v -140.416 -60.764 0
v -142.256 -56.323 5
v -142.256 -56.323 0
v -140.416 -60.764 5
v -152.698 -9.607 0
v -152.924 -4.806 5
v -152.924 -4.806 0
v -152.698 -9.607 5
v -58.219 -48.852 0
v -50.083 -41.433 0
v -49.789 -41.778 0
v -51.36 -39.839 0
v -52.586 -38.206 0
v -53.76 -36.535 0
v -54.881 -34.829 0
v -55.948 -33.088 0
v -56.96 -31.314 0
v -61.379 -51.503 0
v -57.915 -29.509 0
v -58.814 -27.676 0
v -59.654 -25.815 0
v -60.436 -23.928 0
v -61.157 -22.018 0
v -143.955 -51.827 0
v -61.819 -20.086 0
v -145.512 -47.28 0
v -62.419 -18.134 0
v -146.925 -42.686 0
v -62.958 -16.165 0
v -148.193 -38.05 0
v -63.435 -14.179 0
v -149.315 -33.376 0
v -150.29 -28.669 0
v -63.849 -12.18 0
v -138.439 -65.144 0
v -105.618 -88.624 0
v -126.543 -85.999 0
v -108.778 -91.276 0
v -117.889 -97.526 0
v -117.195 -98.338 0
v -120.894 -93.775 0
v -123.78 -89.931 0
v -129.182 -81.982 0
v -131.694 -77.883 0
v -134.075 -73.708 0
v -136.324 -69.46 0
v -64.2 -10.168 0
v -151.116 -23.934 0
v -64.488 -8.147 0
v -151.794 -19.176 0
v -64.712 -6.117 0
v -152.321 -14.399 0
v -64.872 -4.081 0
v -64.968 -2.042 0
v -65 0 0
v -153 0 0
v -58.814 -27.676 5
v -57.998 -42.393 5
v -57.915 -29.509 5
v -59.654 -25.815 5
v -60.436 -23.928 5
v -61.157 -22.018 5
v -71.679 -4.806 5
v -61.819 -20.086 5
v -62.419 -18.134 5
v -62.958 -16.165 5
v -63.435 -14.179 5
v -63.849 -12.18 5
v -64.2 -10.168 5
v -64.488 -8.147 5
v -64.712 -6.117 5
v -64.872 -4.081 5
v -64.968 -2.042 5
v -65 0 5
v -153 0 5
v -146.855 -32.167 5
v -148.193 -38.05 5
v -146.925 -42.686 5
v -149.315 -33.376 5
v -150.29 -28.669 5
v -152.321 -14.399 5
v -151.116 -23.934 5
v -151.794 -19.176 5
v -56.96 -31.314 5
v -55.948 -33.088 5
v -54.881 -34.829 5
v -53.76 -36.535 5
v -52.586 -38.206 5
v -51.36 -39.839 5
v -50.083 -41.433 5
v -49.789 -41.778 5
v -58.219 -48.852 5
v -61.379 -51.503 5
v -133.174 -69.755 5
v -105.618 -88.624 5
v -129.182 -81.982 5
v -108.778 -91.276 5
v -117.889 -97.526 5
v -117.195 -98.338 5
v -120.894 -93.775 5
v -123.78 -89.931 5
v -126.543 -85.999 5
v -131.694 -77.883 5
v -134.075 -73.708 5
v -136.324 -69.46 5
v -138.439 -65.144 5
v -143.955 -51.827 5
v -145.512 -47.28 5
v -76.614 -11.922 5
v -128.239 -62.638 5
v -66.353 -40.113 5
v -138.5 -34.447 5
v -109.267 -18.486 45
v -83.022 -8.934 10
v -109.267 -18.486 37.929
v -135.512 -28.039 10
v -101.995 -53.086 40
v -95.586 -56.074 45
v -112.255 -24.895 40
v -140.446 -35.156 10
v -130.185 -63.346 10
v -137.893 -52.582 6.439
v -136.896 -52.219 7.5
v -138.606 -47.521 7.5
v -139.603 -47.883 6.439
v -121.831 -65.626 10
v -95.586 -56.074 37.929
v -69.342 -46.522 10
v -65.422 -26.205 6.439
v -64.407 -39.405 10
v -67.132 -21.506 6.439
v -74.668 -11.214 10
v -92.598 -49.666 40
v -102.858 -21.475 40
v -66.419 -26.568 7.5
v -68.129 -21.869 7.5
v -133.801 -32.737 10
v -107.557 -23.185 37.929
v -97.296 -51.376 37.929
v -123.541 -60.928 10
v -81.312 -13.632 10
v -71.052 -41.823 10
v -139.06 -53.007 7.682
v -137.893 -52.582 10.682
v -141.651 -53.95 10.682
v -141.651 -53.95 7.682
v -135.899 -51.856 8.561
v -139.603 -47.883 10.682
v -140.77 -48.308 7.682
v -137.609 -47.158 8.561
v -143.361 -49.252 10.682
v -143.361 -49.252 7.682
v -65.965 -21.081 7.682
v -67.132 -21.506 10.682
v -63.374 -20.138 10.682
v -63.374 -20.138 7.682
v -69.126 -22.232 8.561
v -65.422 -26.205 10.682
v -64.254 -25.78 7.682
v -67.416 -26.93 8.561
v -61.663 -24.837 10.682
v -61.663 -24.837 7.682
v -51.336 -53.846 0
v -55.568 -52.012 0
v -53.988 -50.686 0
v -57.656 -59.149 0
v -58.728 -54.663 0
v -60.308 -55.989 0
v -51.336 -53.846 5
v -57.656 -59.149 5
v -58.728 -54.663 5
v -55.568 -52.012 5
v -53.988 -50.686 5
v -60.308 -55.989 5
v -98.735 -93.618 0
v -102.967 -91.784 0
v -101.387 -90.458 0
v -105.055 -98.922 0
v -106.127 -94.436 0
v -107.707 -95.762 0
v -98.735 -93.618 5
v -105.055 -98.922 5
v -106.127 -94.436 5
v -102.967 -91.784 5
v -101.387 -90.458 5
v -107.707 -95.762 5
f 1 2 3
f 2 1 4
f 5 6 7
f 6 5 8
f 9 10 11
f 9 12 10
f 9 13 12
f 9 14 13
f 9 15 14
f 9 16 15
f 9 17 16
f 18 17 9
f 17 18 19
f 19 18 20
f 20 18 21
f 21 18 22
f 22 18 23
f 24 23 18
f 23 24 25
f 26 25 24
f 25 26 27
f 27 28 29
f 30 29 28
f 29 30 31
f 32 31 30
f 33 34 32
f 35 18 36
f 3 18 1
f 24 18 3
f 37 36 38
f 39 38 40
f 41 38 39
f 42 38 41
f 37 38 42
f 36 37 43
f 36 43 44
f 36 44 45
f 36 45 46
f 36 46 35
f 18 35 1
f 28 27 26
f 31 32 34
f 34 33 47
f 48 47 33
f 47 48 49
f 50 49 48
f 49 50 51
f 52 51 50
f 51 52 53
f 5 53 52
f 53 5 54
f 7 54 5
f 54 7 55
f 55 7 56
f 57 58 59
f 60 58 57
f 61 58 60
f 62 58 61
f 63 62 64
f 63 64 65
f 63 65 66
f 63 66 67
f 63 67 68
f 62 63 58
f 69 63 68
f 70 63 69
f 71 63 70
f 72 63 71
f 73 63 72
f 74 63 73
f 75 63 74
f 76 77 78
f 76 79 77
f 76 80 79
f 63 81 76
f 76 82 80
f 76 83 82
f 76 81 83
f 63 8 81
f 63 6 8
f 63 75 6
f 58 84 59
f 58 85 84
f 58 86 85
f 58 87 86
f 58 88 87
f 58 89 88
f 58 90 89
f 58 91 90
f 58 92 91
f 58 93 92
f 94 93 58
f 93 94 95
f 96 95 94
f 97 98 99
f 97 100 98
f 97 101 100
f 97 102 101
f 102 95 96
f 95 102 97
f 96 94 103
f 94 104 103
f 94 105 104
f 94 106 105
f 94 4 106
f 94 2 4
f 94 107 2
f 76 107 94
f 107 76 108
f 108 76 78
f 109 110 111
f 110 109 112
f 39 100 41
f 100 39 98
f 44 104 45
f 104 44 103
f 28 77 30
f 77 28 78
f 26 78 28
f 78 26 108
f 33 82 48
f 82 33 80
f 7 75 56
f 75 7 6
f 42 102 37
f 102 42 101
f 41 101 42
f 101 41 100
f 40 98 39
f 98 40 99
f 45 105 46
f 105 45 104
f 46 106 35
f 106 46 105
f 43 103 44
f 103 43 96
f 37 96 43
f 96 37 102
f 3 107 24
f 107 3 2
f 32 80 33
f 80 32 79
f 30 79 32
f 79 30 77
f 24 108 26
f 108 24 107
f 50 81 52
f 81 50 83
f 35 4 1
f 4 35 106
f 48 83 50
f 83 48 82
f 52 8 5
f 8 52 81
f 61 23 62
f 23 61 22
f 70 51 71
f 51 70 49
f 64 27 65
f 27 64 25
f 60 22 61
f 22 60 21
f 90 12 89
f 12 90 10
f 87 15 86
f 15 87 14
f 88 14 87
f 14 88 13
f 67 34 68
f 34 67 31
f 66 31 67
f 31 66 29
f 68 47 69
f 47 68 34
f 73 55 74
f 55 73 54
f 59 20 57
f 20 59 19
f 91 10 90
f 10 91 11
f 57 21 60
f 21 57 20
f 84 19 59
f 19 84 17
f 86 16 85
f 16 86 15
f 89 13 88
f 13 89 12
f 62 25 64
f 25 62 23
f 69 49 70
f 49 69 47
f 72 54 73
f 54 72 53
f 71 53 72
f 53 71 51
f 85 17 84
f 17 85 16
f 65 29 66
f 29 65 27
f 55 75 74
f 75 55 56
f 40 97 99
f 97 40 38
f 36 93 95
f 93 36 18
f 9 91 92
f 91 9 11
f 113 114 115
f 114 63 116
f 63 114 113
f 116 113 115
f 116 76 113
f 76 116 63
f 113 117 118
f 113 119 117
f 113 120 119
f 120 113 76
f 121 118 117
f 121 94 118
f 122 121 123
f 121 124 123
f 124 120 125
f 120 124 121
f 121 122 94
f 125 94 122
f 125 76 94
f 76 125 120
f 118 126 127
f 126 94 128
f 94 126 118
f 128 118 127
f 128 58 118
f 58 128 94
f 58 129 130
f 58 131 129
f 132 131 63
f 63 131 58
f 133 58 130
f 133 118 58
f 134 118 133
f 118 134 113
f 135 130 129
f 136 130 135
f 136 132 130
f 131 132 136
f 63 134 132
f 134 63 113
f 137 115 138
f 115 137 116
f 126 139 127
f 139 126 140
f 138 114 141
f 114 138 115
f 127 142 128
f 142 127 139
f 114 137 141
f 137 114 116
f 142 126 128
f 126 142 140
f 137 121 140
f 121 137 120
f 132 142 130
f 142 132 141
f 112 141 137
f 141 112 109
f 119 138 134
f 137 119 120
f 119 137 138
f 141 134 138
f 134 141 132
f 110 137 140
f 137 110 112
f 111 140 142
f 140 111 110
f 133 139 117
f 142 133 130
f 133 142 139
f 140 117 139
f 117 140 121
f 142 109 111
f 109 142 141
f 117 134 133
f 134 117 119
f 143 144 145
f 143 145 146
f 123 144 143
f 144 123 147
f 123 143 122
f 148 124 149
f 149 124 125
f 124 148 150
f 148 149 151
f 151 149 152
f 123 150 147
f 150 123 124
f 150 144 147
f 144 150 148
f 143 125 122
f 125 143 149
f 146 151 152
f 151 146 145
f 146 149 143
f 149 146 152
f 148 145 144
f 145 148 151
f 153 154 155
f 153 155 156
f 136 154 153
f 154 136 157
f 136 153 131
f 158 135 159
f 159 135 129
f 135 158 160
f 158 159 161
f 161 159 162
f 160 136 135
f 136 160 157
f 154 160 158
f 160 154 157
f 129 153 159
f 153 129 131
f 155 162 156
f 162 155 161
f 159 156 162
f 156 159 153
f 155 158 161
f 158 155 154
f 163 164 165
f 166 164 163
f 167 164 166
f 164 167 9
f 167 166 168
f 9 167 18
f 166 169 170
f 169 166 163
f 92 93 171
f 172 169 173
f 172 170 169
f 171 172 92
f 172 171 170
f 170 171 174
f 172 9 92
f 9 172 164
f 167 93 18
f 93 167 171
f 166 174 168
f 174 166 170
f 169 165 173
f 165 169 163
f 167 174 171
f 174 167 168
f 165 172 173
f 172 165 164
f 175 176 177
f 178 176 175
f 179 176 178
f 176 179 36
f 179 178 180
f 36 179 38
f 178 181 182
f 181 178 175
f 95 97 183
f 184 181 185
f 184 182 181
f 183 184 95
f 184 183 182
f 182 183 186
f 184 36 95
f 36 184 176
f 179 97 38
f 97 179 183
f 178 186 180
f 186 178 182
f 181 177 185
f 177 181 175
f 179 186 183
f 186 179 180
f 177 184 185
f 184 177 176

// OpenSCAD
// file: camera_mount.scad
triangle_height = 40;
triangle_width = 40;
side_length = sqrt(2) * triangle_height;
beam_width = 5;
smaller_side_length = side_length - beam_width* (1 + sqrt(2))*sqrt(2);

module triangle(side, z){
    difference() {
        translate([0, 0, -side/sqrt(2)])
        rotate([45, 0, 0])
        cube([z, side, side]);
        
        // Cut off bottom
        translate([-500, -500, -1000])
        cube([1000, 1000, 1000]);
    };
};

module truss(){
    difference(){
        triangle(side_length, triangle_width);
        // hollow out triangle cross section
        translate([-0.5, 0, beam_width])

        triangle(smaller_side_length, triangle_width + 1);
        
        translate([beam_width, -500, , beam_width])
        cube([triangle_width - beam_width*2, 1000, triangle_height- beam_width*(2)]);
        
        //hollow base
        translate([beam_width, 0, -(beam_width*(sqrt(2)))])
        triangle(side_length, triangle_width - 2*beam_width);
    }
};

module notch(){
    translate([-500, -beam_width/4, 0])
    cube([1000, beam_width/2, beam_width/2]);
};

module hook(){
    translate([-beam_width/2,-1.5,0]) union()
    {
    cube([beam_width,3,3]);
    translate([0,0,3]) rotate([-45,0,0]) cube([beam_width,3,4]);
    }
}

//hook();
truss();
translate([0,beam_width / 2,beam_width / 2]) translate([smaller_side_length / 2, -triangle_width, 0]) rotate([45,0,0]) rotate(180) hook();
translate([0,-beam_width / 2,beam_width / 2]) translate([smaller_side_length / 2, triangle_width, 0]) rotate([-45,0,]) hook();
//difference(){
//    truss();
//    notch();
//};
// main file
ri = 65; // 65mm radius of turntable
ro = ri + 40*2.2; // outer radius
h = 5;

// r1 = outer radius, r2 = inner radius
module platform_half(r1, r2)
{
    difference()
    {
    difference()
    {
        cylinder(r=r1, h=h, $fn=200);
        translate([0,0,-0.05*h]) cylinder(r=r2, h=1.1*h, $fn=200);
    }
    translate([-ro,0,-2*h]) cube(2*ro);
}
}

// r1 = outer radius, r2 = inner radius
module platform(r1, r2) {
    difference()
    {
        platform_half(r1, r2);
        union()
        {
            rotate(40) platform_half(1.1*r1, 0.9*r2);
        }
    }
}

module mount()
{
    include <camera_mount.scad>
}


module tab(r)
{
    for (i=[0:1])
    {
        translate([0,i*15*r/16,0])
    union()
    {
    cube([r/8,r/16,h]);
    translate([r/8,-r/32,0]) rotate(90) cube([r/8,r/16,h]);
    }
}
//    difference()
//    {
//        cube([4,0.8*r, 2*h / 5]);
//        union() {
//            translate([-0.05,-0.08*r/7,-0.05*h/2]) cube([4.1,1.1*0.8*r/7,1.2*h/2]);
//            translate([-0.05,2*0.8*r/7,-0.05*h/2]) cube([4.1,0.8*r/7,1.2*h/2]);
//            translate([-0.05,4*0.8*r/7,-0.05*h/2]) cube([4.1,0.8*r/7,1.2*h/2]);
//            translate([-0.05,6*0.8*r/7,-0.05*h/2]) cube([4.1,1.1*0.8*r/7,1.2*h/2]);
//
//
//        }
//    }
}

platform(ro, ri);    
rotate(-70) translate([-20,-(ri + ro)/2,h]) mount();

rotate(130) translate([0,ri + 0.125*(ro - ri), 0]) translate([0,0,h]) rotate([0,180,0]) tab(0.75*(ro - ri));
